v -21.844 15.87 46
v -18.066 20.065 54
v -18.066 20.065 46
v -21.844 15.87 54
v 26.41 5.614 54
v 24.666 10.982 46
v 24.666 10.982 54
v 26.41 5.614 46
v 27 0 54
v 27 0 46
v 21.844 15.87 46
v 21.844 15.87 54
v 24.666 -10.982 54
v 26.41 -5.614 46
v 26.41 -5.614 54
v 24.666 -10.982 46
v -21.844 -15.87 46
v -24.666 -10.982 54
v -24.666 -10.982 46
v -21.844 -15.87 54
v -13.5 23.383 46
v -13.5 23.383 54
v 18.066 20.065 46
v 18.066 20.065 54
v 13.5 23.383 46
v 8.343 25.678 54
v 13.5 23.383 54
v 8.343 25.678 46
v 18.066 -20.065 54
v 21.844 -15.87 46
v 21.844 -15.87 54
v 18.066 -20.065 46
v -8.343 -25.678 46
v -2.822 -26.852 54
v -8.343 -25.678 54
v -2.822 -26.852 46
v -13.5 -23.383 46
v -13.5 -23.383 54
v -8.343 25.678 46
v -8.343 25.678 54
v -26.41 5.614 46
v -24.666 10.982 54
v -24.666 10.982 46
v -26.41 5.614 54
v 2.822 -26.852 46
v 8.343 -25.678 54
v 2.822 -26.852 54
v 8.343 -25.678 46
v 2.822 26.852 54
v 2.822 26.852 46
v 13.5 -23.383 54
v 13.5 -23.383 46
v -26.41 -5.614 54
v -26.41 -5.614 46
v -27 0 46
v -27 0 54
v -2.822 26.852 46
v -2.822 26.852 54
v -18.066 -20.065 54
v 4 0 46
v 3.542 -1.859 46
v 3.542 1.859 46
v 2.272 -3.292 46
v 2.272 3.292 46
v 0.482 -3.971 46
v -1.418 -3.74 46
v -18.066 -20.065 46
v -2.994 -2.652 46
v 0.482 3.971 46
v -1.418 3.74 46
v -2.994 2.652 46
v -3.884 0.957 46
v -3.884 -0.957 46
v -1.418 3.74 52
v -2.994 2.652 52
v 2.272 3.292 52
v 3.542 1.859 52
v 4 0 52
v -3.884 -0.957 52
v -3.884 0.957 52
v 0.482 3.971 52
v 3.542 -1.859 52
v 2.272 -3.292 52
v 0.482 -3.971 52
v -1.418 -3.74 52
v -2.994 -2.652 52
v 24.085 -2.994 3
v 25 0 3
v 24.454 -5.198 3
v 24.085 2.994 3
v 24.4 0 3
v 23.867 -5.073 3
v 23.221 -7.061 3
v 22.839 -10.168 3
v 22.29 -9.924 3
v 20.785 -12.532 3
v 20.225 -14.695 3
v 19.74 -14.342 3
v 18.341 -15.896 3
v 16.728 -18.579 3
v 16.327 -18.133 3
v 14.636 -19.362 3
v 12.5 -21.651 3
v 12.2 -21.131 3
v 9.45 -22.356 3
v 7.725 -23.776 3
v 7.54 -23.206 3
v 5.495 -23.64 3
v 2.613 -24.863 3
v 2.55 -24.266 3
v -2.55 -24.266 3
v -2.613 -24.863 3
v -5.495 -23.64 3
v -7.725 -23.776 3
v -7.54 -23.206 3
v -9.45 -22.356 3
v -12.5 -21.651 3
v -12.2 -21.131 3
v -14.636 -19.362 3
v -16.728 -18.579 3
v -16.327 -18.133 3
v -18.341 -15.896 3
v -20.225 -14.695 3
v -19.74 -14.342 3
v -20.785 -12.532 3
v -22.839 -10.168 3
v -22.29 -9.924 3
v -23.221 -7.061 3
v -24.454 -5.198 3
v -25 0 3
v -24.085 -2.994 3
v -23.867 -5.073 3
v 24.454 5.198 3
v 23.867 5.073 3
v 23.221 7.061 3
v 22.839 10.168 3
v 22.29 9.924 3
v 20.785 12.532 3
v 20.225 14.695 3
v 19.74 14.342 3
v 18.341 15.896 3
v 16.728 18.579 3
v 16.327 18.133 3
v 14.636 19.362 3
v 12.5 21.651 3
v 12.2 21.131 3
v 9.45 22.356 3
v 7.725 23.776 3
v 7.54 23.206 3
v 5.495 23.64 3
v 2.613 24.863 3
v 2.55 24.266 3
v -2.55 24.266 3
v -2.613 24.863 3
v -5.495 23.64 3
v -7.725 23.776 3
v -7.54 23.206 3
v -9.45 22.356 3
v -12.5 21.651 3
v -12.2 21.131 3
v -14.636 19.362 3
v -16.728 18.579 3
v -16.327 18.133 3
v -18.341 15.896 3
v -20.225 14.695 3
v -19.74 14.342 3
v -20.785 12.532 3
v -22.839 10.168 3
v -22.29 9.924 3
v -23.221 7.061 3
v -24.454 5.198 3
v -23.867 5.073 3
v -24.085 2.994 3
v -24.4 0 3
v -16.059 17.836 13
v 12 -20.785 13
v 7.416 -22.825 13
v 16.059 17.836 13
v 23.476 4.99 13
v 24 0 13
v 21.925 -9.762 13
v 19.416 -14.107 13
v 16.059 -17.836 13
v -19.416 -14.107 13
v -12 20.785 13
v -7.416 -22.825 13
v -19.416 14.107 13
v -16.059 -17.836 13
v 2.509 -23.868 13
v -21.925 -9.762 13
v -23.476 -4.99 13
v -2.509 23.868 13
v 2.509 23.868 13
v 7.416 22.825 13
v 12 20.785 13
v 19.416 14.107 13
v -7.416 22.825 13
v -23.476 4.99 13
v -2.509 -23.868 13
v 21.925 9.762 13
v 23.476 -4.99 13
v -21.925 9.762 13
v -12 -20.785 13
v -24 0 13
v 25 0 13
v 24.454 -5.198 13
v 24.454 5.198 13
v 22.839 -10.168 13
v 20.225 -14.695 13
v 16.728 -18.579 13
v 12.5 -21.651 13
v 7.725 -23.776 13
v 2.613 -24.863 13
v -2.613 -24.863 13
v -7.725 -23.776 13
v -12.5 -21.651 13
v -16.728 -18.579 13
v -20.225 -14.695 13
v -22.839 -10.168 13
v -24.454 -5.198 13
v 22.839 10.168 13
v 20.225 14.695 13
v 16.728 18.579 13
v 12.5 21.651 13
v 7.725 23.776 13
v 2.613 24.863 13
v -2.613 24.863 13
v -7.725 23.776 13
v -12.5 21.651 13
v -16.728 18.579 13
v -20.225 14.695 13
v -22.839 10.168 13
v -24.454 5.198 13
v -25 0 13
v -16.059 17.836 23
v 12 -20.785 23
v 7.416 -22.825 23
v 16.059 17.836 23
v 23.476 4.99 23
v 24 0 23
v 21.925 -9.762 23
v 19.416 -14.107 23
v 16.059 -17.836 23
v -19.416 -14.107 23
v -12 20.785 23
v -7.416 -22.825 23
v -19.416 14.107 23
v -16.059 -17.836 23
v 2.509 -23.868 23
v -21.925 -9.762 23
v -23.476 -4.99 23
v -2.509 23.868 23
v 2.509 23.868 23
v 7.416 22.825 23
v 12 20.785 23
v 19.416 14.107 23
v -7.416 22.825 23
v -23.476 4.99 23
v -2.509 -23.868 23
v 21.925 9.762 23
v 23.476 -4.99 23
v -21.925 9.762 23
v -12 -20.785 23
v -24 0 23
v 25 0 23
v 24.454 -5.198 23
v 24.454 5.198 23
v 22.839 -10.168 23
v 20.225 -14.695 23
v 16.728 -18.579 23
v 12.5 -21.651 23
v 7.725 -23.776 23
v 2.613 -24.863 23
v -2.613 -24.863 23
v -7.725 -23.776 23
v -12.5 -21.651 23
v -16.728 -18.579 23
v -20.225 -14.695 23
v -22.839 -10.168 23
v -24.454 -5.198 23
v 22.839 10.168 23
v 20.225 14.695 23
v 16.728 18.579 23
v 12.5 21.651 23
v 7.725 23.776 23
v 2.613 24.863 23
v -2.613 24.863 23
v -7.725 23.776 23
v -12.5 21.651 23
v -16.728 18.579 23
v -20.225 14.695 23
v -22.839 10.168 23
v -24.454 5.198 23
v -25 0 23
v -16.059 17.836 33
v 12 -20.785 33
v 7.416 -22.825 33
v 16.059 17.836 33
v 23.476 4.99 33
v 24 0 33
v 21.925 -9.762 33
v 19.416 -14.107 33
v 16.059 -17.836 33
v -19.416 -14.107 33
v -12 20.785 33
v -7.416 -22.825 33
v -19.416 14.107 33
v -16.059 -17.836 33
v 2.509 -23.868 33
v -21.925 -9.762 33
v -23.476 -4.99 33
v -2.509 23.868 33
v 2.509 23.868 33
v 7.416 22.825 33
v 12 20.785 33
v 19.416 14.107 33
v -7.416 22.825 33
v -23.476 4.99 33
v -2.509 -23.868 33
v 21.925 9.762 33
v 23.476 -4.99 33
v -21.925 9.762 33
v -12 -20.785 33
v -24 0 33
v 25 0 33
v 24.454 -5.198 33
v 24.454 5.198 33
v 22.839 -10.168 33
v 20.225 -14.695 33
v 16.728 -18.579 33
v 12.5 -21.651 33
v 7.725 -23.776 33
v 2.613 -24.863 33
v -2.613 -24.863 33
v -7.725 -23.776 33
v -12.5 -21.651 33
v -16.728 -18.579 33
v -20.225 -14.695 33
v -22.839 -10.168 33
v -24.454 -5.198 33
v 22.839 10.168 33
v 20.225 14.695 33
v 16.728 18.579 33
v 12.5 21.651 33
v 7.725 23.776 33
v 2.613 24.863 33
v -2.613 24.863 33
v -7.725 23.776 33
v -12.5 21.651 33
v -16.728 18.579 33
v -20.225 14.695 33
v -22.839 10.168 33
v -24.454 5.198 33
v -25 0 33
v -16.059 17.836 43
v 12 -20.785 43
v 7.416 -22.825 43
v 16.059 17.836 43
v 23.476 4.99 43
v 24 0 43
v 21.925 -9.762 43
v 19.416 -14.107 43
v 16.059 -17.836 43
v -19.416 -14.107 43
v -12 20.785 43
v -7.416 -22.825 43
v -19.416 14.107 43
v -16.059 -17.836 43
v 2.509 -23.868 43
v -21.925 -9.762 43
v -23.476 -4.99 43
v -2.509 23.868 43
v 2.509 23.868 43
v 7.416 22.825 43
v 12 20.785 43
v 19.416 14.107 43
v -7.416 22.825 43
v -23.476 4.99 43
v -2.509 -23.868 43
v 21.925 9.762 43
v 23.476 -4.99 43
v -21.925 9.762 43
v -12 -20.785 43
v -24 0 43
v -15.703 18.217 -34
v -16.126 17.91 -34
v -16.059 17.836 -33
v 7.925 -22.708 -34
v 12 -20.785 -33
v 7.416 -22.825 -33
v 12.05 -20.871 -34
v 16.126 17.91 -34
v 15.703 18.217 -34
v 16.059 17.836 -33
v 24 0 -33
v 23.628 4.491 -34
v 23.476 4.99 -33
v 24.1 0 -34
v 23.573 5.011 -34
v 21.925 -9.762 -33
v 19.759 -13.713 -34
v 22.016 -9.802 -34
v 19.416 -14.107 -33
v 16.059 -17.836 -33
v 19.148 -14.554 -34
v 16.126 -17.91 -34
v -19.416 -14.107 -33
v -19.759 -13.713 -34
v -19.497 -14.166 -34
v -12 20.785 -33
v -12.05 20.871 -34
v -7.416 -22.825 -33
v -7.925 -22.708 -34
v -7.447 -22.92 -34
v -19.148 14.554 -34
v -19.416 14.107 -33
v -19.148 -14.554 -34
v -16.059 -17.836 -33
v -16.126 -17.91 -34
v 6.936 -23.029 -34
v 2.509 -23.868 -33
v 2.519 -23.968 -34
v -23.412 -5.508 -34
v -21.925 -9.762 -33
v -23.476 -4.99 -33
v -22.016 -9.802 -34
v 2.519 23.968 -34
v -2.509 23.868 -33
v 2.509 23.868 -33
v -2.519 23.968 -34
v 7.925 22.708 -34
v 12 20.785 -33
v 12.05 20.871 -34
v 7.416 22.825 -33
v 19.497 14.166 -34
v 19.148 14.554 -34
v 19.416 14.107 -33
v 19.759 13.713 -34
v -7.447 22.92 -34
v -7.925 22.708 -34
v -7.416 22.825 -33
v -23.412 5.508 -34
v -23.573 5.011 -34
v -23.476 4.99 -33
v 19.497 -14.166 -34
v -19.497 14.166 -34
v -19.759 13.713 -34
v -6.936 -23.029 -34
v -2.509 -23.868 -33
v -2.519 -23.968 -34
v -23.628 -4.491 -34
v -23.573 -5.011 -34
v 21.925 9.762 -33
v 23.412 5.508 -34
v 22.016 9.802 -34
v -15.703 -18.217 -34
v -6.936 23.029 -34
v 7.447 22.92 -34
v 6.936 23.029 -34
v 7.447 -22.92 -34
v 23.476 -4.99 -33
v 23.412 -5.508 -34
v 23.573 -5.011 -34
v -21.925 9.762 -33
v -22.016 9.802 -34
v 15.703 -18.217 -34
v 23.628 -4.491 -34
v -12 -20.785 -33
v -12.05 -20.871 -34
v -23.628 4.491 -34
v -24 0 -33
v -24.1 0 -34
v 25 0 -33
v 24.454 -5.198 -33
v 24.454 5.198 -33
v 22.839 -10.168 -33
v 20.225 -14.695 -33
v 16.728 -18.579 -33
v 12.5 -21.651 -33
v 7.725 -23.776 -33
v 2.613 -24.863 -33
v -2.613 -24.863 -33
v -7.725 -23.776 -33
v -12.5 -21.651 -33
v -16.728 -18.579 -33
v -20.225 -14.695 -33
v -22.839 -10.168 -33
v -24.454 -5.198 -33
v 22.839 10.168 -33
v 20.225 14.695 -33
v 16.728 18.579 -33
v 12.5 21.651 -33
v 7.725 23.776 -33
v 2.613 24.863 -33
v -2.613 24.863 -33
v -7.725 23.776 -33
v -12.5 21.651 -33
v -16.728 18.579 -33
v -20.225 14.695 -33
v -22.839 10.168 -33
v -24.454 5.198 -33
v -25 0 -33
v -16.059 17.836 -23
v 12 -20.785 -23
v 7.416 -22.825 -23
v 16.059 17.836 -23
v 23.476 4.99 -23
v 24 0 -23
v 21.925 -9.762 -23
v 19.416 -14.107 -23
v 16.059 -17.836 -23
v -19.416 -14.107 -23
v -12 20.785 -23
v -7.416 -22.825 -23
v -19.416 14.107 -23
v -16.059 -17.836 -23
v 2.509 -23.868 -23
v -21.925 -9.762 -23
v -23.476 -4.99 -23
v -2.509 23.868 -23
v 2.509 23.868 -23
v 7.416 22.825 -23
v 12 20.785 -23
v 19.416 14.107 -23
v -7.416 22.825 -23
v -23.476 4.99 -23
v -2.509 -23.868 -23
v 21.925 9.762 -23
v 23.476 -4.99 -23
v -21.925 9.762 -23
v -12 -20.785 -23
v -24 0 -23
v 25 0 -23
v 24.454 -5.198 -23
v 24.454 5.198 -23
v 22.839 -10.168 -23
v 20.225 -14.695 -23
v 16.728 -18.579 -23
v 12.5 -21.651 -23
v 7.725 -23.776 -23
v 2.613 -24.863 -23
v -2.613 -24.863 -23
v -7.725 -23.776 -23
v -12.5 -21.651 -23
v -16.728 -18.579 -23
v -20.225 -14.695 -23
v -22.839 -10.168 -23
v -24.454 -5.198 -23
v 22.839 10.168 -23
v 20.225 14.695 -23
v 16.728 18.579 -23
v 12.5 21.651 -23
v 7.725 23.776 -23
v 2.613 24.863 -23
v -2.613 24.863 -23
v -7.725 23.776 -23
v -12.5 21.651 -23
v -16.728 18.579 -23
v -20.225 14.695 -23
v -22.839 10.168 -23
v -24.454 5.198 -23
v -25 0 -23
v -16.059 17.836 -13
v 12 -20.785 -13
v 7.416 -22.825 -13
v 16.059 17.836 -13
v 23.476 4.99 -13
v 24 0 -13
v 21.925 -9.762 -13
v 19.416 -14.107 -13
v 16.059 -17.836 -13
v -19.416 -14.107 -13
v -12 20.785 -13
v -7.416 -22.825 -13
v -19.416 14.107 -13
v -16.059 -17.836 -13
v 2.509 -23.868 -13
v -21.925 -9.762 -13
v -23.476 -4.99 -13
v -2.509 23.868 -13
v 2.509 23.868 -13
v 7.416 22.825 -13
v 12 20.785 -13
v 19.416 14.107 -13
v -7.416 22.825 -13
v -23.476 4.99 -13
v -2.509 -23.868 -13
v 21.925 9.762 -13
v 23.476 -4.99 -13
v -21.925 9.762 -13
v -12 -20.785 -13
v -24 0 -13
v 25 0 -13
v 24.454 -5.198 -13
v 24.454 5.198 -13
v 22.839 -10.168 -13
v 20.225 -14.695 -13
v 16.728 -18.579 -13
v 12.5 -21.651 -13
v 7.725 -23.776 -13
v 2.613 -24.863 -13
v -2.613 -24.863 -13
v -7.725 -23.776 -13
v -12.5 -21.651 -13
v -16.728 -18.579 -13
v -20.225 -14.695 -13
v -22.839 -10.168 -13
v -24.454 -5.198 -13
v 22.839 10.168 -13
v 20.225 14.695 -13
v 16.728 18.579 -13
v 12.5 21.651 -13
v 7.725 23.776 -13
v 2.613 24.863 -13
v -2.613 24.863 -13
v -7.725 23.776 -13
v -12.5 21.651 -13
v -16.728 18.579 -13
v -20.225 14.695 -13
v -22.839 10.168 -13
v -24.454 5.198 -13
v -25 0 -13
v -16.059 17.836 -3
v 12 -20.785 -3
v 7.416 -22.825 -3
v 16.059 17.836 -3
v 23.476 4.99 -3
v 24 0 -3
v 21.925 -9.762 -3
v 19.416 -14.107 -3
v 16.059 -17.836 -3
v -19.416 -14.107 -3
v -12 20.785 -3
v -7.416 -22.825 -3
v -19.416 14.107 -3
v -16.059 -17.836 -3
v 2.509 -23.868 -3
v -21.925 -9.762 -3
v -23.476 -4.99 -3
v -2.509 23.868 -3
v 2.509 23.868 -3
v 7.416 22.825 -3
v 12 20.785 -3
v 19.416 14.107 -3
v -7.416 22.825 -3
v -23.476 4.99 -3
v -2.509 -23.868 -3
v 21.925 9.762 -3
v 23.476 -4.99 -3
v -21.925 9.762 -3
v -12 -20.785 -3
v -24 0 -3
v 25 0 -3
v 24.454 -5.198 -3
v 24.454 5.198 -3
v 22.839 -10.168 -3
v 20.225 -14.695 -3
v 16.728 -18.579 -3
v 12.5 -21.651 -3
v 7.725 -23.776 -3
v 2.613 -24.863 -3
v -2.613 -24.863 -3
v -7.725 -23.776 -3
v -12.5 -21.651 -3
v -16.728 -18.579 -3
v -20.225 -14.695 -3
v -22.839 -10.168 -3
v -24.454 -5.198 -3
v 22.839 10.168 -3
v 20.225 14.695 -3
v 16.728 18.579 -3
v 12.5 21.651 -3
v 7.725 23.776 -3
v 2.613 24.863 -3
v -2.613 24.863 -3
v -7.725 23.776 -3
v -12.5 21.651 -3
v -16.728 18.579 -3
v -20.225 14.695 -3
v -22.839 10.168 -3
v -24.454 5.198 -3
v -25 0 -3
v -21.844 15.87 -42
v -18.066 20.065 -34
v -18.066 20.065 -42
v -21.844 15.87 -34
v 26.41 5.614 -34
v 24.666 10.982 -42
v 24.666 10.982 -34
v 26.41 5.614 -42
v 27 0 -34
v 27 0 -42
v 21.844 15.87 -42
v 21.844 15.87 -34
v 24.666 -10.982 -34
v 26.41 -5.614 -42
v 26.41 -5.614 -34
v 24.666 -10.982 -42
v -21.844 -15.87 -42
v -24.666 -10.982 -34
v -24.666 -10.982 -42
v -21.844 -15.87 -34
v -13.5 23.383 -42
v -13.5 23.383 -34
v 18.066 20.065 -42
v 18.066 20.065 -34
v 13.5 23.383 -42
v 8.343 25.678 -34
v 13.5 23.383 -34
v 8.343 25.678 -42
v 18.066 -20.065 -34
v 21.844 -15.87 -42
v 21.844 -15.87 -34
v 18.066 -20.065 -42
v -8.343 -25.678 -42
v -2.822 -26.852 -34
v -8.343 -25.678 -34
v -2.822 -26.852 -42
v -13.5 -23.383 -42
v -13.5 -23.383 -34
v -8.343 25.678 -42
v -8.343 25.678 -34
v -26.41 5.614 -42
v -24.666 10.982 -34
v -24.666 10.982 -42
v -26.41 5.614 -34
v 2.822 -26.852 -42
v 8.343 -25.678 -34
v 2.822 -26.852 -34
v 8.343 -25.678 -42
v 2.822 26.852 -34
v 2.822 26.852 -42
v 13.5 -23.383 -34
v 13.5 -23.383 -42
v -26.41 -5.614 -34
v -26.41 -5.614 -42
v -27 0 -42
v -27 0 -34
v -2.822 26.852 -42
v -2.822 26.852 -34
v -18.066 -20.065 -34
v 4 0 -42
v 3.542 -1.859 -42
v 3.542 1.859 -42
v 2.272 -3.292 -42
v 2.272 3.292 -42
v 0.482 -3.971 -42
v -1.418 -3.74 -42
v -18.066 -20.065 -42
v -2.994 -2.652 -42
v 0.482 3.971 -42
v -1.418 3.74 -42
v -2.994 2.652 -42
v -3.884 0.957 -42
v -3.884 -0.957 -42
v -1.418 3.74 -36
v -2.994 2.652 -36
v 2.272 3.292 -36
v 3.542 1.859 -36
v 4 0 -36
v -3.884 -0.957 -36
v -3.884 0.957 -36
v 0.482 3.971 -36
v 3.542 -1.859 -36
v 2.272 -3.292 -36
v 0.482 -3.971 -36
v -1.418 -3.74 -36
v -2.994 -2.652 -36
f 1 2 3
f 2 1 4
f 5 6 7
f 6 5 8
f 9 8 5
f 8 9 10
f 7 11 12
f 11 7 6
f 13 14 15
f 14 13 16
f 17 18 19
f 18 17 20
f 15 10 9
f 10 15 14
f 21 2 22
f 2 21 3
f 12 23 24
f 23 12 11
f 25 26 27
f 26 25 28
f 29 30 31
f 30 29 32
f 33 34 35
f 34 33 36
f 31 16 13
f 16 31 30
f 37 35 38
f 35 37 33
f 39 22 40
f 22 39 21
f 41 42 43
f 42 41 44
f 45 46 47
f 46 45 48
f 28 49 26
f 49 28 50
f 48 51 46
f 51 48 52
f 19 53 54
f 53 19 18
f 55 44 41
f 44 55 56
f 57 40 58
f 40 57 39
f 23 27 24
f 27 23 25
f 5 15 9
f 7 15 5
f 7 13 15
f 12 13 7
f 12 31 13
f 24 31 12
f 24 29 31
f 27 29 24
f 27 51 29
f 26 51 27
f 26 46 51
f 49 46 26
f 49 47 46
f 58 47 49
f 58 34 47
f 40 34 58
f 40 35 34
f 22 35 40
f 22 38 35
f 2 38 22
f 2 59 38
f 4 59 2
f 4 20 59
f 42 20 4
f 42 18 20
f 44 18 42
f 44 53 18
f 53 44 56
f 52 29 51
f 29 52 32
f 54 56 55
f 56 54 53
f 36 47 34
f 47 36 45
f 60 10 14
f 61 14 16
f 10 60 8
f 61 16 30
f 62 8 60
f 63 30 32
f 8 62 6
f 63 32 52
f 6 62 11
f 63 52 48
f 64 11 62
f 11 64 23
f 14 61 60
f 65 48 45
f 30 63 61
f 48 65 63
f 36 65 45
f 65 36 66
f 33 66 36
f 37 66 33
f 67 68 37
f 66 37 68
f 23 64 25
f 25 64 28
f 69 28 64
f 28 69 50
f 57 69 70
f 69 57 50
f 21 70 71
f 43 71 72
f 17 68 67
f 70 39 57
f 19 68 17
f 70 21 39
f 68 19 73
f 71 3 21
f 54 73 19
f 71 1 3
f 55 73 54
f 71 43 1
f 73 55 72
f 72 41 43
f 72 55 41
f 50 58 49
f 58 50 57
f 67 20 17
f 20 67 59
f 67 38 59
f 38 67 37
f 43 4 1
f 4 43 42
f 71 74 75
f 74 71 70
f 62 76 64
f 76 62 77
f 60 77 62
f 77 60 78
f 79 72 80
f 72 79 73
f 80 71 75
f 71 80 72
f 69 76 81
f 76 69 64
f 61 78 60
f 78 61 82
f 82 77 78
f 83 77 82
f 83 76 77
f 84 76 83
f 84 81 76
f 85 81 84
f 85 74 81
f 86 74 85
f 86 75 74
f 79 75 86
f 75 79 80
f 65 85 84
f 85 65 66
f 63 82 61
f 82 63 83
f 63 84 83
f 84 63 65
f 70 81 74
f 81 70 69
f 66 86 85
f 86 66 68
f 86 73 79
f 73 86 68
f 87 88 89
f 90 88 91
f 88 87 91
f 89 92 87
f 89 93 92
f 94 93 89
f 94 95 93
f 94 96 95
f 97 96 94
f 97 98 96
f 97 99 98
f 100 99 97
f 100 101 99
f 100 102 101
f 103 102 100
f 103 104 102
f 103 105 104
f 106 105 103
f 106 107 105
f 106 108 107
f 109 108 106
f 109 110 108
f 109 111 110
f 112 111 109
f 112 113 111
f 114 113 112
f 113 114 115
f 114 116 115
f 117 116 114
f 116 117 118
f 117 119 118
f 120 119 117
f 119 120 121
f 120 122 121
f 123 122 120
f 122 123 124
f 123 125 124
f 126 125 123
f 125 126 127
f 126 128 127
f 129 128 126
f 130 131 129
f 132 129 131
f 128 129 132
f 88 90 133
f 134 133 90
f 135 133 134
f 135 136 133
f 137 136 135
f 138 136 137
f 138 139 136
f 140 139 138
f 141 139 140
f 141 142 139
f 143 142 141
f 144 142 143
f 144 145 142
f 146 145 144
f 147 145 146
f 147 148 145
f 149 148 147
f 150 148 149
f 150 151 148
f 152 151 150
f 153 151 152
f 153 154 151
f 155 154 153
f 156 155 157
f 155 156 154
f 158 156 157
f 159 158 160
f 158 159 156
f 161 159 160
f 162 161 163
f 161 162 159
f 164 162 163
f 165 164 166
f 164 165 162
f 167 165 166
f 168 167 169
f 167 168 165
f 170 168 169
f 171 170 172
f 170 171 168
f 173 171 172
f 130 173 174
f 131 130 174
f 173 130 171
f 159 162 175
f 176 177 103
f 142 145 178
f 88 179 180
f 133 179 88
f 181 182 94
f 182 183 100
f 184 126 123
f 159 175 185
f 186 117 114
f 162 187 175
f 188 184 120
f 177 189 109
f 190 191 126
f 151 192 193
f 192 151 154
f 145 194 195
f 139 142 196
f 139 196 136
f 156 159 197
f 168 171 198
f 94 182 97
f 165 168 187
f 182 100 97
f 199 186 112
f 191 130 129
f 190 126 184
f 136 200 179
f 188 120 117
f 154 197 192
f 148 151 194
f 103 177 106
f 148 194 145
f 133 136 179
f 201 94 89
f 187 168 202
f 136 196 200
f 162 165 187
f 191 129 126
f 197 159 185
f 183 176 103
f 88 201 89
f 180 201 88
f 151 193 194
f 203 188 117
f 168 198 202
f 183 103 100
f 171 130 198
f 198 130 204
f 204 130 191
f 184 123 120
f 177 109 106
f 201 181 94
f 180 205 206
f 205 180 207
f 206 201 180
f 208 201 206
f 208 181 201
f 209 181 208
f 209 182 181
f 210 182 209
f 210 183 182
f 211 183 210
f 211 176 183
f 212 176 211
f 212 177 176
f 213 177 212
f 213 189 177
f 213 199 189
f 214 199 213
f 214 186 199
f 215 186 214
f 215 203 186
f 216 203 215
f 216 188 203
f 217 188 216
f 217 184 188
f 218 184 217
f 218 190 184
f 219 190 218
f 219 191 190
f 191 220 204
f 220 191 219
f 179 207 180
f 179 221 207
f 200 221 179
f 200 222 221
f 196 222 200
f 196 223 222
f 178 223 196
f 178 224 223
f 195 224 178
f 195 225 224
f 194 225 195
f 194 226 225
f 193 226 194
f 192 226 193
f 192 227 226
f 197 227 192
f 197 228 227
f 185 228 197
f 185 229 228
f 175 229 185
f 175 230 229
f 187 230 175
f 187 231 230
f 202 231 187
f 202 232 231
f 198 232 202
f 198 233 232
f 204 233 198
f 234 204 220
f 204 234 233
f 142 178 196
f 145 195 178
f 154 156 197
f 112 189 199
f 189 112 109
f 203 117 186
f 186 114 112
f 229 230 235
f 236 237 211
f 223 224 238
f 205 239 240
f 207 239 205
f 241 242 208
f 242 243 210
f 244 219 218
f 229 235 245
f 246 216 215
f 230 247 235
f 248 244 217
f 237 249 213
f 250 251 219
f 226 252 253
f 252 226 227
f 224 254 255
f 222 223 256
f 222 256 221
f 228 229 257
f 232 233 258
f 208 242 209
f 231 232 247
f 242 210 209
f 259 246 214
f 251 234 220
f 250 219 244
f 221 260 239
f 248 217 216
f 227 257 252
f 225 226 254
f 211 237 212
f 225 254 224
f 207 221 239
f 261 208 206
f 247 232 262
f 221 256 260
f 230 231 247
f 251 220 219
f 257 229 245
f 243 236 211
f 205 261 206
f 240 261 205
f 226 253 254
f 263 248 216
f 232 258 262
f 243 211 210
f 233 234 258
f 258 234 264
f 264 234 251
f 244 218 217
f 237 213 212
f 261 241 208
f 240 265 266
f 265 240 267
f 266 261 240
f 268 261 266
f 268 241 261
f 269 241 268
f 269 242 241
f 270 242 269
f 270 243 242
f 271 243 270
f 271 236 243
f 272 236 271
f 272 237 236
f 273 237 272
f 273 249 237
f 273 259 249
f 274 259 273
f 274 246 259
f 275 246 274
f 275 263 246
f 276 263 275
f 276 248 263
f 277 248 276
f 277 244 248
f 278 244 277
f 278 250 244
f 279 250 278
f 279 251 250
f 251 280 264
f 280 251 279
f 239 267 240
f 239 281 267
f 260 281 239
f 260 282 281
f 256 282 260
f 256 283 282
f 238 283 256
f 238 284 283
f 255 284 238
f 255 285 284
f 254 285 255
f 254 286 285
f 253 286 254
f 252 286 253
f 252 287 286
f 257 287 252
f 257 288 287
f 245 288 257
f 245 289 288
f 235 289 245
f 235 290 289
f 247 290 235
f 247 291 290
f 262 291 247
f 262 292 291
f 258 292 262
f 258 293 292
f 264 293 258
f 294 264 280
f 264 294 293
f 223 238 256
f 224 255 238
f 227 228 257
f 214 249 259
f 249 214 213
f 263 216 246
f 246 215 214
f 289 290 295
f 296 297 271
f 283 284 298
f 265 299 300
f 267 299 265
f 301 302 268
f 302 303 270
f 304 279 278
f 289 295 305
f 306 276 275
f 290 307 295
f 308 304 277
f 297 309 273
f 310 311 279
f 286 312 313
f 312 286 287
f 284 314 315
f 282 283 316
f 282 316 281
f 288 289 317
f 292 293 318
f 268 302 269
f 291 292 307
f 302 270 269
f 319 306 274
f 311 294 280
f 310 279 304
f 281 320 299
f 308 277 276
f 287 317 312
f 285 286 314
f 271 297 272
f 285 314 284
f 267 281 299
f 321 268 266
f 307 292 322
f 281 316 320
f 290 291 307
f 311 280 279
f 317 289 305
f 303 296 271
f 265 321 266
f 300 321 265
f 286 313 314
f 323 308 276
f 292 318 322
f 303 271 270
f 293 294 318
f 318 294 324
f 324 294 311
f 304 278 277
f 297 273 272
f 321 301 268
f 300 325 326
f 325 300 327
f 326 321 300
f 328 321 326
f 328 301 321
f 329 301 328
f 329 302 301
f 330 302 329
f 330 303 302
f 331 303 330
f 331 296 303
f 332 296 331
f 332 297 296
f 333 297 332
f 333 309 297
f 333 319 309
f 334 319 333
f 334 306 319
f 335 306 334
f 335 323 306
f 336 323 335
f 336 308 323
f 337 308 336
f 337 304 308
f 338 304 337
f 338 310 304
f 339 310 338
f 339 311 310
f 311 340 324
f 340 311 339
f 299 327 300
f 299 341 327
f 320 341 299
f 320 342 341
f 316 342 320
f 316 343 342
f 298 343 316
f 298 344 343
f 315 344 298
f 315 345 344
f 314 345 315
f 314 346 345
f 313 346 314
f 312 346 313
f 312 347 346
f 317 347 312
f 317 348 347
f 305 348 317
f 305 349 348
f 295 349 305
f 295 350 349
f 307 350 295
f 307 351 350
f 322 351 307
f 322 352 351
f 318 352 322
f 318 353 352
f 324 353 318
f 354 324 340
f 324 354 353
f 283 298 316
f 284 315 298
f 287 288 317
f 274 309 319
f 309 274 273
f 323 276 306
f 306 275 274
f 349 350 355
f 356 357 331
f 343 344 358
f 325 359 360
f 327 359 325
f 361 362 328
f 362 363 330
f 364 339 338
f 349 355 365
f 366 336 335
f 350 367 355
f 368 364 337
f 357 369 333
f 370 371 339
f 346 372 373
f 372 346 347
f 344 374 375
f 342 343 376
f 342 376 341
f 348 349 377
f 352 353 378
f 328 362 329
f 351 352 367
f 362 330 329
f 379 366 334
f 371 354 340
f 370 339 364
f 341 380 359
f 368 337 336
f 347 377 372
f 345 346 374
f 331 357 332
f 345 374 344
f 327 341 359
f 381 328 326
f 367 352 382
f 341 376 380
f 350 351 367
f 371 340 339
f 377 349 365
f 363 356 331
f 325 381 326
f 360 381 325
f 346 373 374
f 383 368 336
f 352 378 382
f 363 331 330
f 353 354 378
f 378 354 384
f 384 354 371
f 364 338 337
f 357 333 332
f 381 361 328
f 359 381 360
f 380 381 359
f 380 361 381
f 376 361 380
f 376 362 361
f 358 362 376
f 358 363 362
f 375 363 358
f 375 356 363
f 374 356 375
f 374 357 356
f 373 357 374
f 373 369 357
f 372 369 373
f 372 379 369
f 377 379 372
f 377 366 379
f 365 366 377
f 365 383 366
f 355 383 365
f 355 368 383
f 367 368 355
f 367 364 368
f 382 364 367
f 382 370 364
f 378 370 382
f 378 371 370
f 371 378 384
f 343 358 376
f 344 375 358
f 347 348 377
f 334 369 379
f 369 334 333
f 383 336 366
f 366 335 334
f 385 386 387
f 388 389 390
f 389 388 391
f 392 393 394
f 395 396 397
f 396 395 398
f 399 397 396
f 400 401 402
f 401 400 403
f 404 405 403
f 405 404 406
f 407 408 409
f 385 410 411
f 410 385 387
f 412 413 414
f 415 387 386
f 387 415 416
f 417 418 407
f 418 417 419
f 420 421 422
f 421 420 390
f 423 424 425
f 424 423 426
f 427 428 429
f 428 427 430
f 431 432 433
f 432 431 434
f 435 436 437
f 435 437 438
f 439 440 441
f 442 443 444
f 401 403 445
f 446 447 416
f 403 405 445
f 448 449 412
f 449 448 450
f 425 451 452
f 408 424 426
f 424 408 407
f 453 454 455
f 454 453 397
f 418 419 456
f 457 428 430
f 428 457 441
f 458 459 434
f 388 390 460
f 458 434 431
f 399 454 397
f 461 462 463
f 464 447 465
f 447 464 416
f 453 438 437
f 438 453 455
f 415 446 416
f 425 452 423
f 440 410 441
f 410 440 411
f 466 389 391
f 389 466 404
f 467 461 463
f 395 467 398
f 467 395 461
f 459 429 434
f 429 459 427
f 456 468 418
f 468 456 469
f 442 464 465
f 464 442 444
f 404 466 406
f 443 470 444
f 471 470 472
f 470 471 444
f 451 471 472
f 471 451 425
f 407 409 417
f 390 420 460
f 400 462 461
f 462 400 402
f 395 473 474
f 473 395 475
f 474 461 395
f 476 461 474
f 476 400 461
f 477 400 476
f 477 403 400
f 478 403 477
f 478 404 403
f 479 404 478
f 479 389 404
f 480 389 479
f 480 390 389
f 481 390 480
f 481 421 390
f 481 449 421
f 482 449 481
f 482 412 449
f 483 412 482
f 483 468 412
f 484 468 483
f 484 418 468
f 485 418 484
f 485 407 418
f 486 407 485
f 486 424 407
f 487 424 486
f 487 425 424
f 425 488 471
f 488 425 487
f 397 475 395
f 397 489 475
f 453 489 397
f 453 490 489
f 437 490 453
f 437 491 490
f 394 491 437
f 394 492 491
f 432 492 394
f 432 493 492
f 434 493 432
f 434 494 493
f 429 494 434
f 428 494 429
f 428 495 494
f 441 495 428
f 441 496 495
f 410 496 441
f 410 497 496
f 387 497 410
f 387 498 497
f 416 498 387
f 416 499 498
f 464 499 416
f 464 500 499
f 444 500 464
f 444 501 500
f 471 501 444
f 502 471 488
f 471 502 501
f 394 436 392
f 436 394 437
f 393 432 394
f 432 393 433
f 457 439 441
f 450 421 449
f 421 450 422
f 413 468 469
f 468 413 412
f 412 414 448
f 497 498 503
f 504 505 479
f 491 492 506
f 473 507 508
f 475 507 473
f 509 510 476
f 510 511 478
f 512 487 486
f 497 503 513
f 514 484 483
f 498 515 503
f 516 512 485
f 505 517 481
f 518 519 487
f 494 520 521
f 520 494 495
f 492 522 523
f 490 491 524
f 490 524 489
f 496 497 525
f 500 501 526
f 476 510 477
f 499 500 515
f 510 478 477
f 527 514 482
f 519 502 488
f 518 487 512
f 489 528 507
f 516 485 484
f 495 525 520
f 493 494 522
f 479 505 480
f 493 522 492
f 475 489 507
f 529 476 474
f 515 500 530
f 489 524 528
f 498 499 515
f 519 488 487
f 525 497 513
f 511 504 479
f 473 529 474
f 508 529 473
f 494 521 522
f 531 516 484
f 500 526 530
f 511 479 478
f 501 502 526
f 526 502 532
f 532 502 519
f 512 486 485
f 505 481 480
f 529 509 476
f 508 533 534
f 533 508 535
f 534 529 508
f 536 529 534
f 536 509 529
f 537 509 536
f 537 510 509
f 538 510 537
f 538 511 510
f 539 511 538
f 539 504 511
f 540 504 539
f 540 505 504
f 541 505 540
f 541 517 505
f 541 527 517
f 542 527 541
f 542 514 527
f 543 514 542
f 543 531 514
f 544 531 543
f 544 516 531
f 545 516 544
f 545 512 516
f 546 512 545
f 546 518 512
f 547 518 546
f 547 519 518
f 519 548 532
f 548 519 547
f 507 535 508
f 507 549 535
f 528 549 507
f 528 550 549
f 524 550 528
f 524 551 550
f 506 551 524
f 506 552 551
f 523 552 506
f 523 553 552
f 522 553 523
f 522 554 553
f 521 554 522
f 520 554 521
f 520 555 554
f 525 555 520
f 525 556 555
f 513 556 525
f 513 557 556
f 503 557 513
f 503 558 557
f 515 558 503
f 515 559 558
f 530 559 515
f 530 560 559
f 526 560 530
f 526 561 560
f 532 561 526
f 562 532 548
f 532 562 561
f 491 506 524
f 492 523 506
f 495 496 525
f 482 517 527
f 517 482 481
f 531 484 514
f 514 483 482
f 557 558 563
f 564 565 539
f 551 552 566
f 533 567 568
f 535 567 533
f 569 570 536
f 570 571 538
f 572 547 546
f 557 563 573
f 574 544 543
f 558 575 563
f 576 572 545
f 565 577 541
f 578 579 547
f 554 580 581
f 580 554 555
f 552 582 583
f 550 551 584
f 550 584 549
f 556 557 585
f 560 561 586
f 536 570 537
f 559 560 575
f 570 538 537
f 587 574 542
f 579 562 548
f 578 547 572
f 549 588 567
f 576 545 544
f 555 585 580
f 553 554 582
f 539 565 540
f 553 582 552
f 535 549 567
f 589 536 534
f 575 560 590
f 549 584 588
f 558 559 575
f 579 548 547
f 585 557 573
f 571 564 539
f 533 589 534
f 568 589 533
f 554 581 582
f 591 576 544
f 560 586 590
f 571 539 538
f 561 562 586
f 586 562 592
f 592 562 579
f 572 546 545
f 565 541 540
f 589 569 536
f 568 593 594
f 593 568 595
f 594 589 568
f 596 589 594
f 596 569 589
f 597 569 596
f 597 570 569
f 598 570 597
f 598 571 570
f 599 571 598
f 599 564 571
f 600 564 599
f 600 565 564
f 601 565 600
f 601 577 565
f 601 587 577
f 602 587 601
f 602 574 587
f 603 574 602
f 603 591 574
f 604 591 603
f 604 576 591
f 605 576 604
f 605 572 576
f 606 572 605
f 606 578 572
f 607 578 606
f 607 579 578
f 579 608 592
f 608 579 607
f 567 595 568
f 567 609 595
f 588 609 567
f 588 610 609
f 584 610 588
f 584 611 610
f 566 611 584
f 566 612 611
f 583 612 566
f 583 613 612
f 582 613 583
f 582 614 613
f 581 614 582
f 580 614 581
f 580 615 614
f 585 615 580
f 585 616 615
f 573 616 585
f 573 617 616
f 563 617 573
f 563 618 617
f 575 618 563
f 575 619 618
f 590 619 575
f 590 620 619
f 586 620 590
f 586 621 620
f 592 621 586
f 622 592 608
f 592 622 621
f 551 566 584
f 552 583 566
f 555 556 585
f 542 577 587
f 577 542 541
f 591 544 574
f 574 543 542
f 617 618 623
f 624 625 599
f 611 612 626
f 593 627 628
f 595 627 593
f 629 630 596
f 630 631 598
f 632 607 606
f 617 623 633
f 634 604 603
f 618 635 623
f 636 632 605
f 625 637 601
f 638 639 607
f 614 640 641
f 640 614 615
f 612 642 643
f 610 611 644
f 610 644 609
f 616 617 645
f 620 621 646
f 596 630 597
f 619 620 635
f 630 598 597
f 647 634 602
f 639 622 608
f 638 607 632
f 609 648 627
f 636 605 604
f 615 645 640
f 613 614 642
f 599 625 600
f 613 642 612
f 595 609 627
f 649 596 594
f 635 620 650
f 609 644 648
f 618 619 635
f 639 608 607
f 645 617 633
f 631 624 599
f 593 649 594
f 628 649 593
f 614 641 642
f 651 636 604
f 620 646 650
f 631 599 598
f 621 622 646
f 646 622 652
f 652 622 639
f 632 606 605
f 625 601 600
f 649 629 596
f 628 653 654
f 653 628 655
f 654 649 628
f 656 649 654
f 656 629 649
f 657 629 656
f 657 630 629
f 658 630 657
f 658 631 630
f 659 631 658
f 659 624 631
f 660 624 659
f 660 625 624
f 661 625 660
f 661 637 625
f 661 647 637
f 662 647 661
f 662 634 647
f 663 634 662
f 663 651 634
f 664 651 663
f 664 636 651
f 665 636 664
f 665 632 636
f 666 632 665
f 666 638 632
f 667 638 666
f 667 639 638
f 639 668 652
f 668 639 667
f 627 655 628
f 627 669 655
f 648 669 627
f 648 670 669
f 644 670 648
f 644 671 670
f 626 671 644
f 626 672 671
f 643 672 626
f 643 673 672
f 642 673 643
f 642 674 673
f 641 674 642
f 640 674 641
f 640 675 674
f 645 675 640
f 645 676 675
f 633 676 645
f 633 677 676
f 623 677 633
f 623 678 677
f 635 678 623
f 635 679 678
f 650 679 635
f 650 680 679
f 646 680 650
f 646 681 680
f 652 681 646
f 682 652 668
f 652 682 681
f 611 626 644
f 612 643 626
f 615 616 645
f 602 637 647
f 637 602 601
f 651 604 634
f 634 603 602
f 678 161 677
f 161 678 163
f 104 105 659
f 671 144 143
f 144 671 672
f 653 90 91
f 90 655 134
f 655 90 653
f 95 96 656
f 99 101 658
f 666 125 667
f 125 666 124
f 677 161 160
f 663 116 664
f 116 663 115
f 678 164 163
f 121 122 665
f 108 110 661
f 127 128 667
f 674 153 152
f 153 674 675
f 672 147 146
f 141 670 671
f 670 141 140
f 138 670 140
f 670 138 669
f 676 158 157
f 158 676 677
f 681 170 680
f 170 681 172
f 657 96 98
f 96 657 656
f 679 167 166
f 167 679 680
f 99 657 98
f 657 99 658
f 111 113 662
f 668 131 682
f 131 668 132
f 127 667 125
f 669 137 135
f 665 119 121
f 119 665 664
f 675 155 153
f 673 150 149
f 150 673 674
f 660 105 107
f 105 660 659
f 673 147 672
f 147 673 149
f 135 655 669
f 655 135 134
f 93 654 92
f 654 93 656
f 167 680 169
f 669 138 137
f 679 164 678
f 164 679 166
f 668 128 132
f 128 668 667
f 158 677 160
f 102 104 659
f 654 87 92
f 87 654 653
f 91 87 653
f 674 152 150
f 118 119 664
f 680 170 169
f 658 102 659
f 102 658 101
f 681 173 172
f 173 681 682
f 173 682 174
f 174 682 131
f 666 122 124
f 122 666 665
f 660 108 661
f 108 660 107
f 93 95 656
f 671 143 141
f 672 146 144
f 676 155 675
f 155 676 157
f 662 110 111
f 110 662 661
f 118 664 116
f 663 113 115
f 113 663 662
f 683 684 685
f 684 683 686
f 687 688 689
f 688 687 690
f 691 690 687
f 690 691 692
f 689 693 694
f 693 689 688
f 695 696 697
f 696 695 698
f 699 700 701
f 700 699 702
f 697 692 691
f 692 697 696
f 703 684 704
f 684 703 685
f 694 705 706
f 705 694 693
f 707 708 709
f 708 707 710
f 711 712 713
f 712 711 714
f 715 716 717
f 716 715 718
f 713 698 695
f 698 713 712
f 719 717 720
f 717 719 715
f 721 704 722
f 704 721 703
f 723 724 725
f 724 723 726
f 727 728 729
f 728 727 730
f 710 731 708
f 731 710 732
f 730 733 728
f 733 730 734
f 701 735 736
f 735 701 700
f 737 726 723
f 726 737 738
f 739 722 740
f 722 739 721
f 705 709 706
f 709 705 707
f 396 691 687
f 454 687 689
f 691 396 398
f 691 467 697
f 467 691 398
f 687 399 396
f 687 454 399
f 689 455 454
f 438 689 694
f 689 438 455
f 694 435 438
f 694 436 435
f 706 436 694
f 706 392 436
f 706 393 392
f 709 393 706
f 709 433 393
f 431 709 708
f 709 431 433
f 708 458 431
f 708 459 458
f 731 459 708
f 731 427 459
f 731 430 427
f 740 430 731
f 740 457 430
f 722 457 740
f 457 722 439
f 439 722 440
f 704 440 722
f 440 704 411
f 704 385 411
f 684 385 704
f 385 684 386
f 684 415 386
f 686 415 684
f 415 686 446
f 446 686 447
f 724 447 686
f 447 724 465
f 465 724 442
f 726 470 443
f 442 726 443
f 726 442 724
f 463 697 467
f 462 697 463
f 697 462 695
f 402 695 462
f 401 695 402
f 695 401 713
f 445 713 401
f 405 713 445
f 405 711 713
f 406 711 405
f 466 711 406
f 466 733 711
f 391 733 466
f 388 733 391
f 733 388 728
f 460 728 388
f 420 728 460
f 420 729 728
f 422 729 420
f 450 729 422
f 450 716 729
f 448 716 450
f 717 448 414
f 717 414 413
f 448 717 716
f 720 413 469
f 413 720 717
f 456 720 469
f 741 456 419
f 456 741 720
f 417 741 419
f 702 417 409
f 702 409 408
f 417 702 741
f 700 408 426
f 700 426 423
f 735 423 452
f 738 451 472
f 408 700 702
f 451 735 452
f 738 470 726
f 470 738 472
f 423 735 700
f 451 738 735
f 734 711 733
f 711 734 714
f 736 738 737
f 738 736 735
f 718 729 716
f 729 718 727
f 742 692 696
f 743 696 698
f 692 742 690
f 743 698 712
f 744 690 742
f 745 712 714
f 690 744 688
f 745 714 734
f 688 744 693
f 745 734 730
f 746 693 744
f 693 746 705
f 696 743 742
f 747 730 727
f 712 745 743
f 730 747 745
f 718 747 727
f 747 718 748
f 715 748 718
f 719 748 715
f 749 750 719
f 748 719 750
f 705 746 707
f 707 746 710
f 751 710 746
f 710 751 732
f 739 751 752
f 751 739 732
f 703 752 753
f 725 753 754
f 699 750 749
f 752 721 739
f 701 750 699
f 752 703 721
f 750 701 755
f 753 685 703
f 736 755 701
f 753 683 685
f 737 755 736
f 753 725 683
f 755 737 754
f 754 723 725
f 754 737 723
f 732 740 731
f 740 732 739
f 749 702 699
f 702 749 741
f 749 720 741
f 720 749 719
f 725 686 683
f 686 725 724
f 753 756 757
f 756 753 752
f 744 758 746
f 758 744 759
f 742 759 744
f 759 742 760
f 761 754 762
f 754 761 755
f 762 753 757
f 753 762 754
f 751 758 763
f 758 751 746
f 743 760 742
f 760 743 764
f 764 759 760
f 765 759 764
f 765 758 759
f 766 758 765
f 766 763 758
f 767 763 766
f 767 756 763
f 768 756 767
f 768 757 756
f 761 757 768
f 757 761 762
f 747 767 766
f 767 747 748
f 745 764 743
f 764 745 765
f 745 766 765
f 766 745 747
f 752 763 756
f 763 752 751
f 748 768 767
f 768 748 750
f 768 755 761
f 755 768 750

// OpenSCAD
// Component: Central Hub
module central_hub() {
    difference() {
        // Adjusted Main cylinder
        cylinder(h = 25, d = 30, center = true); // Increased height for the original design

        // Narrowed Central bore
        translate([0, 0, -12.5])
            cylinder(h = 30, d = 8, center = true); // Reduced diameter for compatibility

        // Deepened and narrowed Slot
        translate([0, -4, -25])
            cube([28, 8, 50], center = true);
    }
}

// Component: Outer Sleeve
module outer_sleeve() {
    difference() {
        // Ribbed texture adjustment
        for (z = [-20, -10, 0, 10, 20]) {
            translate([0, 0, z]) {
                cylinder(h = 10, d1 = 50, d2 = 48, center = true);
            }
        }

        // Thicker Flange
        translate([0, 0, -25])
            cylinder(h = 15, d = 60, center = true);
    }
}

// Component: Locking Cap
module locking_cap() {
    difference() {
        // Taller rim for the cap
        cylinder(h = 8, d = 54, center = true);  // Increased rim height

        // Smaller Central hole
        translate([0, 0, -4])
            cylinder(h = 12, d = 8, center = true);  // Reduced hole size
    }
}

// Component: Inner Ring
module inner_ring() {
    difference() {
        // Increased thickness of the ring
        cylinder(h = 6, d = 42, center = true);  // Made slightly thicker

        // Adjusted Central hole size
        translate([0, 0, -3])
            cylinder(h = 12, d = 22, center = true);  // Enlarged for alignment
    }
}

// Full Assembly
module full_model() {
    // Adjust Layer 1: Top Locking Cap position
    translate([0, 0, 50])
        locking_cap();

    // Adjust Layer 2: Outer Sleeve and Inner Ring
    translate([0, 0, 18])
        outer_sleeve();
    translate([0, 0, 18])
        inner_ring();

    // Adjust Layer 3: Central Hub height
    translate([0, 0, -2.5])
        central_hub();

    // Layer 4: Bottom Outer Sleeve
    translate([0, 0, -18])
        outer_sleeve();

    // Adjust Layer 5: Bottom Locking Cap position
    translate([0, 0, -38])
        locking_cap();
}

// Render full model
full_model();
